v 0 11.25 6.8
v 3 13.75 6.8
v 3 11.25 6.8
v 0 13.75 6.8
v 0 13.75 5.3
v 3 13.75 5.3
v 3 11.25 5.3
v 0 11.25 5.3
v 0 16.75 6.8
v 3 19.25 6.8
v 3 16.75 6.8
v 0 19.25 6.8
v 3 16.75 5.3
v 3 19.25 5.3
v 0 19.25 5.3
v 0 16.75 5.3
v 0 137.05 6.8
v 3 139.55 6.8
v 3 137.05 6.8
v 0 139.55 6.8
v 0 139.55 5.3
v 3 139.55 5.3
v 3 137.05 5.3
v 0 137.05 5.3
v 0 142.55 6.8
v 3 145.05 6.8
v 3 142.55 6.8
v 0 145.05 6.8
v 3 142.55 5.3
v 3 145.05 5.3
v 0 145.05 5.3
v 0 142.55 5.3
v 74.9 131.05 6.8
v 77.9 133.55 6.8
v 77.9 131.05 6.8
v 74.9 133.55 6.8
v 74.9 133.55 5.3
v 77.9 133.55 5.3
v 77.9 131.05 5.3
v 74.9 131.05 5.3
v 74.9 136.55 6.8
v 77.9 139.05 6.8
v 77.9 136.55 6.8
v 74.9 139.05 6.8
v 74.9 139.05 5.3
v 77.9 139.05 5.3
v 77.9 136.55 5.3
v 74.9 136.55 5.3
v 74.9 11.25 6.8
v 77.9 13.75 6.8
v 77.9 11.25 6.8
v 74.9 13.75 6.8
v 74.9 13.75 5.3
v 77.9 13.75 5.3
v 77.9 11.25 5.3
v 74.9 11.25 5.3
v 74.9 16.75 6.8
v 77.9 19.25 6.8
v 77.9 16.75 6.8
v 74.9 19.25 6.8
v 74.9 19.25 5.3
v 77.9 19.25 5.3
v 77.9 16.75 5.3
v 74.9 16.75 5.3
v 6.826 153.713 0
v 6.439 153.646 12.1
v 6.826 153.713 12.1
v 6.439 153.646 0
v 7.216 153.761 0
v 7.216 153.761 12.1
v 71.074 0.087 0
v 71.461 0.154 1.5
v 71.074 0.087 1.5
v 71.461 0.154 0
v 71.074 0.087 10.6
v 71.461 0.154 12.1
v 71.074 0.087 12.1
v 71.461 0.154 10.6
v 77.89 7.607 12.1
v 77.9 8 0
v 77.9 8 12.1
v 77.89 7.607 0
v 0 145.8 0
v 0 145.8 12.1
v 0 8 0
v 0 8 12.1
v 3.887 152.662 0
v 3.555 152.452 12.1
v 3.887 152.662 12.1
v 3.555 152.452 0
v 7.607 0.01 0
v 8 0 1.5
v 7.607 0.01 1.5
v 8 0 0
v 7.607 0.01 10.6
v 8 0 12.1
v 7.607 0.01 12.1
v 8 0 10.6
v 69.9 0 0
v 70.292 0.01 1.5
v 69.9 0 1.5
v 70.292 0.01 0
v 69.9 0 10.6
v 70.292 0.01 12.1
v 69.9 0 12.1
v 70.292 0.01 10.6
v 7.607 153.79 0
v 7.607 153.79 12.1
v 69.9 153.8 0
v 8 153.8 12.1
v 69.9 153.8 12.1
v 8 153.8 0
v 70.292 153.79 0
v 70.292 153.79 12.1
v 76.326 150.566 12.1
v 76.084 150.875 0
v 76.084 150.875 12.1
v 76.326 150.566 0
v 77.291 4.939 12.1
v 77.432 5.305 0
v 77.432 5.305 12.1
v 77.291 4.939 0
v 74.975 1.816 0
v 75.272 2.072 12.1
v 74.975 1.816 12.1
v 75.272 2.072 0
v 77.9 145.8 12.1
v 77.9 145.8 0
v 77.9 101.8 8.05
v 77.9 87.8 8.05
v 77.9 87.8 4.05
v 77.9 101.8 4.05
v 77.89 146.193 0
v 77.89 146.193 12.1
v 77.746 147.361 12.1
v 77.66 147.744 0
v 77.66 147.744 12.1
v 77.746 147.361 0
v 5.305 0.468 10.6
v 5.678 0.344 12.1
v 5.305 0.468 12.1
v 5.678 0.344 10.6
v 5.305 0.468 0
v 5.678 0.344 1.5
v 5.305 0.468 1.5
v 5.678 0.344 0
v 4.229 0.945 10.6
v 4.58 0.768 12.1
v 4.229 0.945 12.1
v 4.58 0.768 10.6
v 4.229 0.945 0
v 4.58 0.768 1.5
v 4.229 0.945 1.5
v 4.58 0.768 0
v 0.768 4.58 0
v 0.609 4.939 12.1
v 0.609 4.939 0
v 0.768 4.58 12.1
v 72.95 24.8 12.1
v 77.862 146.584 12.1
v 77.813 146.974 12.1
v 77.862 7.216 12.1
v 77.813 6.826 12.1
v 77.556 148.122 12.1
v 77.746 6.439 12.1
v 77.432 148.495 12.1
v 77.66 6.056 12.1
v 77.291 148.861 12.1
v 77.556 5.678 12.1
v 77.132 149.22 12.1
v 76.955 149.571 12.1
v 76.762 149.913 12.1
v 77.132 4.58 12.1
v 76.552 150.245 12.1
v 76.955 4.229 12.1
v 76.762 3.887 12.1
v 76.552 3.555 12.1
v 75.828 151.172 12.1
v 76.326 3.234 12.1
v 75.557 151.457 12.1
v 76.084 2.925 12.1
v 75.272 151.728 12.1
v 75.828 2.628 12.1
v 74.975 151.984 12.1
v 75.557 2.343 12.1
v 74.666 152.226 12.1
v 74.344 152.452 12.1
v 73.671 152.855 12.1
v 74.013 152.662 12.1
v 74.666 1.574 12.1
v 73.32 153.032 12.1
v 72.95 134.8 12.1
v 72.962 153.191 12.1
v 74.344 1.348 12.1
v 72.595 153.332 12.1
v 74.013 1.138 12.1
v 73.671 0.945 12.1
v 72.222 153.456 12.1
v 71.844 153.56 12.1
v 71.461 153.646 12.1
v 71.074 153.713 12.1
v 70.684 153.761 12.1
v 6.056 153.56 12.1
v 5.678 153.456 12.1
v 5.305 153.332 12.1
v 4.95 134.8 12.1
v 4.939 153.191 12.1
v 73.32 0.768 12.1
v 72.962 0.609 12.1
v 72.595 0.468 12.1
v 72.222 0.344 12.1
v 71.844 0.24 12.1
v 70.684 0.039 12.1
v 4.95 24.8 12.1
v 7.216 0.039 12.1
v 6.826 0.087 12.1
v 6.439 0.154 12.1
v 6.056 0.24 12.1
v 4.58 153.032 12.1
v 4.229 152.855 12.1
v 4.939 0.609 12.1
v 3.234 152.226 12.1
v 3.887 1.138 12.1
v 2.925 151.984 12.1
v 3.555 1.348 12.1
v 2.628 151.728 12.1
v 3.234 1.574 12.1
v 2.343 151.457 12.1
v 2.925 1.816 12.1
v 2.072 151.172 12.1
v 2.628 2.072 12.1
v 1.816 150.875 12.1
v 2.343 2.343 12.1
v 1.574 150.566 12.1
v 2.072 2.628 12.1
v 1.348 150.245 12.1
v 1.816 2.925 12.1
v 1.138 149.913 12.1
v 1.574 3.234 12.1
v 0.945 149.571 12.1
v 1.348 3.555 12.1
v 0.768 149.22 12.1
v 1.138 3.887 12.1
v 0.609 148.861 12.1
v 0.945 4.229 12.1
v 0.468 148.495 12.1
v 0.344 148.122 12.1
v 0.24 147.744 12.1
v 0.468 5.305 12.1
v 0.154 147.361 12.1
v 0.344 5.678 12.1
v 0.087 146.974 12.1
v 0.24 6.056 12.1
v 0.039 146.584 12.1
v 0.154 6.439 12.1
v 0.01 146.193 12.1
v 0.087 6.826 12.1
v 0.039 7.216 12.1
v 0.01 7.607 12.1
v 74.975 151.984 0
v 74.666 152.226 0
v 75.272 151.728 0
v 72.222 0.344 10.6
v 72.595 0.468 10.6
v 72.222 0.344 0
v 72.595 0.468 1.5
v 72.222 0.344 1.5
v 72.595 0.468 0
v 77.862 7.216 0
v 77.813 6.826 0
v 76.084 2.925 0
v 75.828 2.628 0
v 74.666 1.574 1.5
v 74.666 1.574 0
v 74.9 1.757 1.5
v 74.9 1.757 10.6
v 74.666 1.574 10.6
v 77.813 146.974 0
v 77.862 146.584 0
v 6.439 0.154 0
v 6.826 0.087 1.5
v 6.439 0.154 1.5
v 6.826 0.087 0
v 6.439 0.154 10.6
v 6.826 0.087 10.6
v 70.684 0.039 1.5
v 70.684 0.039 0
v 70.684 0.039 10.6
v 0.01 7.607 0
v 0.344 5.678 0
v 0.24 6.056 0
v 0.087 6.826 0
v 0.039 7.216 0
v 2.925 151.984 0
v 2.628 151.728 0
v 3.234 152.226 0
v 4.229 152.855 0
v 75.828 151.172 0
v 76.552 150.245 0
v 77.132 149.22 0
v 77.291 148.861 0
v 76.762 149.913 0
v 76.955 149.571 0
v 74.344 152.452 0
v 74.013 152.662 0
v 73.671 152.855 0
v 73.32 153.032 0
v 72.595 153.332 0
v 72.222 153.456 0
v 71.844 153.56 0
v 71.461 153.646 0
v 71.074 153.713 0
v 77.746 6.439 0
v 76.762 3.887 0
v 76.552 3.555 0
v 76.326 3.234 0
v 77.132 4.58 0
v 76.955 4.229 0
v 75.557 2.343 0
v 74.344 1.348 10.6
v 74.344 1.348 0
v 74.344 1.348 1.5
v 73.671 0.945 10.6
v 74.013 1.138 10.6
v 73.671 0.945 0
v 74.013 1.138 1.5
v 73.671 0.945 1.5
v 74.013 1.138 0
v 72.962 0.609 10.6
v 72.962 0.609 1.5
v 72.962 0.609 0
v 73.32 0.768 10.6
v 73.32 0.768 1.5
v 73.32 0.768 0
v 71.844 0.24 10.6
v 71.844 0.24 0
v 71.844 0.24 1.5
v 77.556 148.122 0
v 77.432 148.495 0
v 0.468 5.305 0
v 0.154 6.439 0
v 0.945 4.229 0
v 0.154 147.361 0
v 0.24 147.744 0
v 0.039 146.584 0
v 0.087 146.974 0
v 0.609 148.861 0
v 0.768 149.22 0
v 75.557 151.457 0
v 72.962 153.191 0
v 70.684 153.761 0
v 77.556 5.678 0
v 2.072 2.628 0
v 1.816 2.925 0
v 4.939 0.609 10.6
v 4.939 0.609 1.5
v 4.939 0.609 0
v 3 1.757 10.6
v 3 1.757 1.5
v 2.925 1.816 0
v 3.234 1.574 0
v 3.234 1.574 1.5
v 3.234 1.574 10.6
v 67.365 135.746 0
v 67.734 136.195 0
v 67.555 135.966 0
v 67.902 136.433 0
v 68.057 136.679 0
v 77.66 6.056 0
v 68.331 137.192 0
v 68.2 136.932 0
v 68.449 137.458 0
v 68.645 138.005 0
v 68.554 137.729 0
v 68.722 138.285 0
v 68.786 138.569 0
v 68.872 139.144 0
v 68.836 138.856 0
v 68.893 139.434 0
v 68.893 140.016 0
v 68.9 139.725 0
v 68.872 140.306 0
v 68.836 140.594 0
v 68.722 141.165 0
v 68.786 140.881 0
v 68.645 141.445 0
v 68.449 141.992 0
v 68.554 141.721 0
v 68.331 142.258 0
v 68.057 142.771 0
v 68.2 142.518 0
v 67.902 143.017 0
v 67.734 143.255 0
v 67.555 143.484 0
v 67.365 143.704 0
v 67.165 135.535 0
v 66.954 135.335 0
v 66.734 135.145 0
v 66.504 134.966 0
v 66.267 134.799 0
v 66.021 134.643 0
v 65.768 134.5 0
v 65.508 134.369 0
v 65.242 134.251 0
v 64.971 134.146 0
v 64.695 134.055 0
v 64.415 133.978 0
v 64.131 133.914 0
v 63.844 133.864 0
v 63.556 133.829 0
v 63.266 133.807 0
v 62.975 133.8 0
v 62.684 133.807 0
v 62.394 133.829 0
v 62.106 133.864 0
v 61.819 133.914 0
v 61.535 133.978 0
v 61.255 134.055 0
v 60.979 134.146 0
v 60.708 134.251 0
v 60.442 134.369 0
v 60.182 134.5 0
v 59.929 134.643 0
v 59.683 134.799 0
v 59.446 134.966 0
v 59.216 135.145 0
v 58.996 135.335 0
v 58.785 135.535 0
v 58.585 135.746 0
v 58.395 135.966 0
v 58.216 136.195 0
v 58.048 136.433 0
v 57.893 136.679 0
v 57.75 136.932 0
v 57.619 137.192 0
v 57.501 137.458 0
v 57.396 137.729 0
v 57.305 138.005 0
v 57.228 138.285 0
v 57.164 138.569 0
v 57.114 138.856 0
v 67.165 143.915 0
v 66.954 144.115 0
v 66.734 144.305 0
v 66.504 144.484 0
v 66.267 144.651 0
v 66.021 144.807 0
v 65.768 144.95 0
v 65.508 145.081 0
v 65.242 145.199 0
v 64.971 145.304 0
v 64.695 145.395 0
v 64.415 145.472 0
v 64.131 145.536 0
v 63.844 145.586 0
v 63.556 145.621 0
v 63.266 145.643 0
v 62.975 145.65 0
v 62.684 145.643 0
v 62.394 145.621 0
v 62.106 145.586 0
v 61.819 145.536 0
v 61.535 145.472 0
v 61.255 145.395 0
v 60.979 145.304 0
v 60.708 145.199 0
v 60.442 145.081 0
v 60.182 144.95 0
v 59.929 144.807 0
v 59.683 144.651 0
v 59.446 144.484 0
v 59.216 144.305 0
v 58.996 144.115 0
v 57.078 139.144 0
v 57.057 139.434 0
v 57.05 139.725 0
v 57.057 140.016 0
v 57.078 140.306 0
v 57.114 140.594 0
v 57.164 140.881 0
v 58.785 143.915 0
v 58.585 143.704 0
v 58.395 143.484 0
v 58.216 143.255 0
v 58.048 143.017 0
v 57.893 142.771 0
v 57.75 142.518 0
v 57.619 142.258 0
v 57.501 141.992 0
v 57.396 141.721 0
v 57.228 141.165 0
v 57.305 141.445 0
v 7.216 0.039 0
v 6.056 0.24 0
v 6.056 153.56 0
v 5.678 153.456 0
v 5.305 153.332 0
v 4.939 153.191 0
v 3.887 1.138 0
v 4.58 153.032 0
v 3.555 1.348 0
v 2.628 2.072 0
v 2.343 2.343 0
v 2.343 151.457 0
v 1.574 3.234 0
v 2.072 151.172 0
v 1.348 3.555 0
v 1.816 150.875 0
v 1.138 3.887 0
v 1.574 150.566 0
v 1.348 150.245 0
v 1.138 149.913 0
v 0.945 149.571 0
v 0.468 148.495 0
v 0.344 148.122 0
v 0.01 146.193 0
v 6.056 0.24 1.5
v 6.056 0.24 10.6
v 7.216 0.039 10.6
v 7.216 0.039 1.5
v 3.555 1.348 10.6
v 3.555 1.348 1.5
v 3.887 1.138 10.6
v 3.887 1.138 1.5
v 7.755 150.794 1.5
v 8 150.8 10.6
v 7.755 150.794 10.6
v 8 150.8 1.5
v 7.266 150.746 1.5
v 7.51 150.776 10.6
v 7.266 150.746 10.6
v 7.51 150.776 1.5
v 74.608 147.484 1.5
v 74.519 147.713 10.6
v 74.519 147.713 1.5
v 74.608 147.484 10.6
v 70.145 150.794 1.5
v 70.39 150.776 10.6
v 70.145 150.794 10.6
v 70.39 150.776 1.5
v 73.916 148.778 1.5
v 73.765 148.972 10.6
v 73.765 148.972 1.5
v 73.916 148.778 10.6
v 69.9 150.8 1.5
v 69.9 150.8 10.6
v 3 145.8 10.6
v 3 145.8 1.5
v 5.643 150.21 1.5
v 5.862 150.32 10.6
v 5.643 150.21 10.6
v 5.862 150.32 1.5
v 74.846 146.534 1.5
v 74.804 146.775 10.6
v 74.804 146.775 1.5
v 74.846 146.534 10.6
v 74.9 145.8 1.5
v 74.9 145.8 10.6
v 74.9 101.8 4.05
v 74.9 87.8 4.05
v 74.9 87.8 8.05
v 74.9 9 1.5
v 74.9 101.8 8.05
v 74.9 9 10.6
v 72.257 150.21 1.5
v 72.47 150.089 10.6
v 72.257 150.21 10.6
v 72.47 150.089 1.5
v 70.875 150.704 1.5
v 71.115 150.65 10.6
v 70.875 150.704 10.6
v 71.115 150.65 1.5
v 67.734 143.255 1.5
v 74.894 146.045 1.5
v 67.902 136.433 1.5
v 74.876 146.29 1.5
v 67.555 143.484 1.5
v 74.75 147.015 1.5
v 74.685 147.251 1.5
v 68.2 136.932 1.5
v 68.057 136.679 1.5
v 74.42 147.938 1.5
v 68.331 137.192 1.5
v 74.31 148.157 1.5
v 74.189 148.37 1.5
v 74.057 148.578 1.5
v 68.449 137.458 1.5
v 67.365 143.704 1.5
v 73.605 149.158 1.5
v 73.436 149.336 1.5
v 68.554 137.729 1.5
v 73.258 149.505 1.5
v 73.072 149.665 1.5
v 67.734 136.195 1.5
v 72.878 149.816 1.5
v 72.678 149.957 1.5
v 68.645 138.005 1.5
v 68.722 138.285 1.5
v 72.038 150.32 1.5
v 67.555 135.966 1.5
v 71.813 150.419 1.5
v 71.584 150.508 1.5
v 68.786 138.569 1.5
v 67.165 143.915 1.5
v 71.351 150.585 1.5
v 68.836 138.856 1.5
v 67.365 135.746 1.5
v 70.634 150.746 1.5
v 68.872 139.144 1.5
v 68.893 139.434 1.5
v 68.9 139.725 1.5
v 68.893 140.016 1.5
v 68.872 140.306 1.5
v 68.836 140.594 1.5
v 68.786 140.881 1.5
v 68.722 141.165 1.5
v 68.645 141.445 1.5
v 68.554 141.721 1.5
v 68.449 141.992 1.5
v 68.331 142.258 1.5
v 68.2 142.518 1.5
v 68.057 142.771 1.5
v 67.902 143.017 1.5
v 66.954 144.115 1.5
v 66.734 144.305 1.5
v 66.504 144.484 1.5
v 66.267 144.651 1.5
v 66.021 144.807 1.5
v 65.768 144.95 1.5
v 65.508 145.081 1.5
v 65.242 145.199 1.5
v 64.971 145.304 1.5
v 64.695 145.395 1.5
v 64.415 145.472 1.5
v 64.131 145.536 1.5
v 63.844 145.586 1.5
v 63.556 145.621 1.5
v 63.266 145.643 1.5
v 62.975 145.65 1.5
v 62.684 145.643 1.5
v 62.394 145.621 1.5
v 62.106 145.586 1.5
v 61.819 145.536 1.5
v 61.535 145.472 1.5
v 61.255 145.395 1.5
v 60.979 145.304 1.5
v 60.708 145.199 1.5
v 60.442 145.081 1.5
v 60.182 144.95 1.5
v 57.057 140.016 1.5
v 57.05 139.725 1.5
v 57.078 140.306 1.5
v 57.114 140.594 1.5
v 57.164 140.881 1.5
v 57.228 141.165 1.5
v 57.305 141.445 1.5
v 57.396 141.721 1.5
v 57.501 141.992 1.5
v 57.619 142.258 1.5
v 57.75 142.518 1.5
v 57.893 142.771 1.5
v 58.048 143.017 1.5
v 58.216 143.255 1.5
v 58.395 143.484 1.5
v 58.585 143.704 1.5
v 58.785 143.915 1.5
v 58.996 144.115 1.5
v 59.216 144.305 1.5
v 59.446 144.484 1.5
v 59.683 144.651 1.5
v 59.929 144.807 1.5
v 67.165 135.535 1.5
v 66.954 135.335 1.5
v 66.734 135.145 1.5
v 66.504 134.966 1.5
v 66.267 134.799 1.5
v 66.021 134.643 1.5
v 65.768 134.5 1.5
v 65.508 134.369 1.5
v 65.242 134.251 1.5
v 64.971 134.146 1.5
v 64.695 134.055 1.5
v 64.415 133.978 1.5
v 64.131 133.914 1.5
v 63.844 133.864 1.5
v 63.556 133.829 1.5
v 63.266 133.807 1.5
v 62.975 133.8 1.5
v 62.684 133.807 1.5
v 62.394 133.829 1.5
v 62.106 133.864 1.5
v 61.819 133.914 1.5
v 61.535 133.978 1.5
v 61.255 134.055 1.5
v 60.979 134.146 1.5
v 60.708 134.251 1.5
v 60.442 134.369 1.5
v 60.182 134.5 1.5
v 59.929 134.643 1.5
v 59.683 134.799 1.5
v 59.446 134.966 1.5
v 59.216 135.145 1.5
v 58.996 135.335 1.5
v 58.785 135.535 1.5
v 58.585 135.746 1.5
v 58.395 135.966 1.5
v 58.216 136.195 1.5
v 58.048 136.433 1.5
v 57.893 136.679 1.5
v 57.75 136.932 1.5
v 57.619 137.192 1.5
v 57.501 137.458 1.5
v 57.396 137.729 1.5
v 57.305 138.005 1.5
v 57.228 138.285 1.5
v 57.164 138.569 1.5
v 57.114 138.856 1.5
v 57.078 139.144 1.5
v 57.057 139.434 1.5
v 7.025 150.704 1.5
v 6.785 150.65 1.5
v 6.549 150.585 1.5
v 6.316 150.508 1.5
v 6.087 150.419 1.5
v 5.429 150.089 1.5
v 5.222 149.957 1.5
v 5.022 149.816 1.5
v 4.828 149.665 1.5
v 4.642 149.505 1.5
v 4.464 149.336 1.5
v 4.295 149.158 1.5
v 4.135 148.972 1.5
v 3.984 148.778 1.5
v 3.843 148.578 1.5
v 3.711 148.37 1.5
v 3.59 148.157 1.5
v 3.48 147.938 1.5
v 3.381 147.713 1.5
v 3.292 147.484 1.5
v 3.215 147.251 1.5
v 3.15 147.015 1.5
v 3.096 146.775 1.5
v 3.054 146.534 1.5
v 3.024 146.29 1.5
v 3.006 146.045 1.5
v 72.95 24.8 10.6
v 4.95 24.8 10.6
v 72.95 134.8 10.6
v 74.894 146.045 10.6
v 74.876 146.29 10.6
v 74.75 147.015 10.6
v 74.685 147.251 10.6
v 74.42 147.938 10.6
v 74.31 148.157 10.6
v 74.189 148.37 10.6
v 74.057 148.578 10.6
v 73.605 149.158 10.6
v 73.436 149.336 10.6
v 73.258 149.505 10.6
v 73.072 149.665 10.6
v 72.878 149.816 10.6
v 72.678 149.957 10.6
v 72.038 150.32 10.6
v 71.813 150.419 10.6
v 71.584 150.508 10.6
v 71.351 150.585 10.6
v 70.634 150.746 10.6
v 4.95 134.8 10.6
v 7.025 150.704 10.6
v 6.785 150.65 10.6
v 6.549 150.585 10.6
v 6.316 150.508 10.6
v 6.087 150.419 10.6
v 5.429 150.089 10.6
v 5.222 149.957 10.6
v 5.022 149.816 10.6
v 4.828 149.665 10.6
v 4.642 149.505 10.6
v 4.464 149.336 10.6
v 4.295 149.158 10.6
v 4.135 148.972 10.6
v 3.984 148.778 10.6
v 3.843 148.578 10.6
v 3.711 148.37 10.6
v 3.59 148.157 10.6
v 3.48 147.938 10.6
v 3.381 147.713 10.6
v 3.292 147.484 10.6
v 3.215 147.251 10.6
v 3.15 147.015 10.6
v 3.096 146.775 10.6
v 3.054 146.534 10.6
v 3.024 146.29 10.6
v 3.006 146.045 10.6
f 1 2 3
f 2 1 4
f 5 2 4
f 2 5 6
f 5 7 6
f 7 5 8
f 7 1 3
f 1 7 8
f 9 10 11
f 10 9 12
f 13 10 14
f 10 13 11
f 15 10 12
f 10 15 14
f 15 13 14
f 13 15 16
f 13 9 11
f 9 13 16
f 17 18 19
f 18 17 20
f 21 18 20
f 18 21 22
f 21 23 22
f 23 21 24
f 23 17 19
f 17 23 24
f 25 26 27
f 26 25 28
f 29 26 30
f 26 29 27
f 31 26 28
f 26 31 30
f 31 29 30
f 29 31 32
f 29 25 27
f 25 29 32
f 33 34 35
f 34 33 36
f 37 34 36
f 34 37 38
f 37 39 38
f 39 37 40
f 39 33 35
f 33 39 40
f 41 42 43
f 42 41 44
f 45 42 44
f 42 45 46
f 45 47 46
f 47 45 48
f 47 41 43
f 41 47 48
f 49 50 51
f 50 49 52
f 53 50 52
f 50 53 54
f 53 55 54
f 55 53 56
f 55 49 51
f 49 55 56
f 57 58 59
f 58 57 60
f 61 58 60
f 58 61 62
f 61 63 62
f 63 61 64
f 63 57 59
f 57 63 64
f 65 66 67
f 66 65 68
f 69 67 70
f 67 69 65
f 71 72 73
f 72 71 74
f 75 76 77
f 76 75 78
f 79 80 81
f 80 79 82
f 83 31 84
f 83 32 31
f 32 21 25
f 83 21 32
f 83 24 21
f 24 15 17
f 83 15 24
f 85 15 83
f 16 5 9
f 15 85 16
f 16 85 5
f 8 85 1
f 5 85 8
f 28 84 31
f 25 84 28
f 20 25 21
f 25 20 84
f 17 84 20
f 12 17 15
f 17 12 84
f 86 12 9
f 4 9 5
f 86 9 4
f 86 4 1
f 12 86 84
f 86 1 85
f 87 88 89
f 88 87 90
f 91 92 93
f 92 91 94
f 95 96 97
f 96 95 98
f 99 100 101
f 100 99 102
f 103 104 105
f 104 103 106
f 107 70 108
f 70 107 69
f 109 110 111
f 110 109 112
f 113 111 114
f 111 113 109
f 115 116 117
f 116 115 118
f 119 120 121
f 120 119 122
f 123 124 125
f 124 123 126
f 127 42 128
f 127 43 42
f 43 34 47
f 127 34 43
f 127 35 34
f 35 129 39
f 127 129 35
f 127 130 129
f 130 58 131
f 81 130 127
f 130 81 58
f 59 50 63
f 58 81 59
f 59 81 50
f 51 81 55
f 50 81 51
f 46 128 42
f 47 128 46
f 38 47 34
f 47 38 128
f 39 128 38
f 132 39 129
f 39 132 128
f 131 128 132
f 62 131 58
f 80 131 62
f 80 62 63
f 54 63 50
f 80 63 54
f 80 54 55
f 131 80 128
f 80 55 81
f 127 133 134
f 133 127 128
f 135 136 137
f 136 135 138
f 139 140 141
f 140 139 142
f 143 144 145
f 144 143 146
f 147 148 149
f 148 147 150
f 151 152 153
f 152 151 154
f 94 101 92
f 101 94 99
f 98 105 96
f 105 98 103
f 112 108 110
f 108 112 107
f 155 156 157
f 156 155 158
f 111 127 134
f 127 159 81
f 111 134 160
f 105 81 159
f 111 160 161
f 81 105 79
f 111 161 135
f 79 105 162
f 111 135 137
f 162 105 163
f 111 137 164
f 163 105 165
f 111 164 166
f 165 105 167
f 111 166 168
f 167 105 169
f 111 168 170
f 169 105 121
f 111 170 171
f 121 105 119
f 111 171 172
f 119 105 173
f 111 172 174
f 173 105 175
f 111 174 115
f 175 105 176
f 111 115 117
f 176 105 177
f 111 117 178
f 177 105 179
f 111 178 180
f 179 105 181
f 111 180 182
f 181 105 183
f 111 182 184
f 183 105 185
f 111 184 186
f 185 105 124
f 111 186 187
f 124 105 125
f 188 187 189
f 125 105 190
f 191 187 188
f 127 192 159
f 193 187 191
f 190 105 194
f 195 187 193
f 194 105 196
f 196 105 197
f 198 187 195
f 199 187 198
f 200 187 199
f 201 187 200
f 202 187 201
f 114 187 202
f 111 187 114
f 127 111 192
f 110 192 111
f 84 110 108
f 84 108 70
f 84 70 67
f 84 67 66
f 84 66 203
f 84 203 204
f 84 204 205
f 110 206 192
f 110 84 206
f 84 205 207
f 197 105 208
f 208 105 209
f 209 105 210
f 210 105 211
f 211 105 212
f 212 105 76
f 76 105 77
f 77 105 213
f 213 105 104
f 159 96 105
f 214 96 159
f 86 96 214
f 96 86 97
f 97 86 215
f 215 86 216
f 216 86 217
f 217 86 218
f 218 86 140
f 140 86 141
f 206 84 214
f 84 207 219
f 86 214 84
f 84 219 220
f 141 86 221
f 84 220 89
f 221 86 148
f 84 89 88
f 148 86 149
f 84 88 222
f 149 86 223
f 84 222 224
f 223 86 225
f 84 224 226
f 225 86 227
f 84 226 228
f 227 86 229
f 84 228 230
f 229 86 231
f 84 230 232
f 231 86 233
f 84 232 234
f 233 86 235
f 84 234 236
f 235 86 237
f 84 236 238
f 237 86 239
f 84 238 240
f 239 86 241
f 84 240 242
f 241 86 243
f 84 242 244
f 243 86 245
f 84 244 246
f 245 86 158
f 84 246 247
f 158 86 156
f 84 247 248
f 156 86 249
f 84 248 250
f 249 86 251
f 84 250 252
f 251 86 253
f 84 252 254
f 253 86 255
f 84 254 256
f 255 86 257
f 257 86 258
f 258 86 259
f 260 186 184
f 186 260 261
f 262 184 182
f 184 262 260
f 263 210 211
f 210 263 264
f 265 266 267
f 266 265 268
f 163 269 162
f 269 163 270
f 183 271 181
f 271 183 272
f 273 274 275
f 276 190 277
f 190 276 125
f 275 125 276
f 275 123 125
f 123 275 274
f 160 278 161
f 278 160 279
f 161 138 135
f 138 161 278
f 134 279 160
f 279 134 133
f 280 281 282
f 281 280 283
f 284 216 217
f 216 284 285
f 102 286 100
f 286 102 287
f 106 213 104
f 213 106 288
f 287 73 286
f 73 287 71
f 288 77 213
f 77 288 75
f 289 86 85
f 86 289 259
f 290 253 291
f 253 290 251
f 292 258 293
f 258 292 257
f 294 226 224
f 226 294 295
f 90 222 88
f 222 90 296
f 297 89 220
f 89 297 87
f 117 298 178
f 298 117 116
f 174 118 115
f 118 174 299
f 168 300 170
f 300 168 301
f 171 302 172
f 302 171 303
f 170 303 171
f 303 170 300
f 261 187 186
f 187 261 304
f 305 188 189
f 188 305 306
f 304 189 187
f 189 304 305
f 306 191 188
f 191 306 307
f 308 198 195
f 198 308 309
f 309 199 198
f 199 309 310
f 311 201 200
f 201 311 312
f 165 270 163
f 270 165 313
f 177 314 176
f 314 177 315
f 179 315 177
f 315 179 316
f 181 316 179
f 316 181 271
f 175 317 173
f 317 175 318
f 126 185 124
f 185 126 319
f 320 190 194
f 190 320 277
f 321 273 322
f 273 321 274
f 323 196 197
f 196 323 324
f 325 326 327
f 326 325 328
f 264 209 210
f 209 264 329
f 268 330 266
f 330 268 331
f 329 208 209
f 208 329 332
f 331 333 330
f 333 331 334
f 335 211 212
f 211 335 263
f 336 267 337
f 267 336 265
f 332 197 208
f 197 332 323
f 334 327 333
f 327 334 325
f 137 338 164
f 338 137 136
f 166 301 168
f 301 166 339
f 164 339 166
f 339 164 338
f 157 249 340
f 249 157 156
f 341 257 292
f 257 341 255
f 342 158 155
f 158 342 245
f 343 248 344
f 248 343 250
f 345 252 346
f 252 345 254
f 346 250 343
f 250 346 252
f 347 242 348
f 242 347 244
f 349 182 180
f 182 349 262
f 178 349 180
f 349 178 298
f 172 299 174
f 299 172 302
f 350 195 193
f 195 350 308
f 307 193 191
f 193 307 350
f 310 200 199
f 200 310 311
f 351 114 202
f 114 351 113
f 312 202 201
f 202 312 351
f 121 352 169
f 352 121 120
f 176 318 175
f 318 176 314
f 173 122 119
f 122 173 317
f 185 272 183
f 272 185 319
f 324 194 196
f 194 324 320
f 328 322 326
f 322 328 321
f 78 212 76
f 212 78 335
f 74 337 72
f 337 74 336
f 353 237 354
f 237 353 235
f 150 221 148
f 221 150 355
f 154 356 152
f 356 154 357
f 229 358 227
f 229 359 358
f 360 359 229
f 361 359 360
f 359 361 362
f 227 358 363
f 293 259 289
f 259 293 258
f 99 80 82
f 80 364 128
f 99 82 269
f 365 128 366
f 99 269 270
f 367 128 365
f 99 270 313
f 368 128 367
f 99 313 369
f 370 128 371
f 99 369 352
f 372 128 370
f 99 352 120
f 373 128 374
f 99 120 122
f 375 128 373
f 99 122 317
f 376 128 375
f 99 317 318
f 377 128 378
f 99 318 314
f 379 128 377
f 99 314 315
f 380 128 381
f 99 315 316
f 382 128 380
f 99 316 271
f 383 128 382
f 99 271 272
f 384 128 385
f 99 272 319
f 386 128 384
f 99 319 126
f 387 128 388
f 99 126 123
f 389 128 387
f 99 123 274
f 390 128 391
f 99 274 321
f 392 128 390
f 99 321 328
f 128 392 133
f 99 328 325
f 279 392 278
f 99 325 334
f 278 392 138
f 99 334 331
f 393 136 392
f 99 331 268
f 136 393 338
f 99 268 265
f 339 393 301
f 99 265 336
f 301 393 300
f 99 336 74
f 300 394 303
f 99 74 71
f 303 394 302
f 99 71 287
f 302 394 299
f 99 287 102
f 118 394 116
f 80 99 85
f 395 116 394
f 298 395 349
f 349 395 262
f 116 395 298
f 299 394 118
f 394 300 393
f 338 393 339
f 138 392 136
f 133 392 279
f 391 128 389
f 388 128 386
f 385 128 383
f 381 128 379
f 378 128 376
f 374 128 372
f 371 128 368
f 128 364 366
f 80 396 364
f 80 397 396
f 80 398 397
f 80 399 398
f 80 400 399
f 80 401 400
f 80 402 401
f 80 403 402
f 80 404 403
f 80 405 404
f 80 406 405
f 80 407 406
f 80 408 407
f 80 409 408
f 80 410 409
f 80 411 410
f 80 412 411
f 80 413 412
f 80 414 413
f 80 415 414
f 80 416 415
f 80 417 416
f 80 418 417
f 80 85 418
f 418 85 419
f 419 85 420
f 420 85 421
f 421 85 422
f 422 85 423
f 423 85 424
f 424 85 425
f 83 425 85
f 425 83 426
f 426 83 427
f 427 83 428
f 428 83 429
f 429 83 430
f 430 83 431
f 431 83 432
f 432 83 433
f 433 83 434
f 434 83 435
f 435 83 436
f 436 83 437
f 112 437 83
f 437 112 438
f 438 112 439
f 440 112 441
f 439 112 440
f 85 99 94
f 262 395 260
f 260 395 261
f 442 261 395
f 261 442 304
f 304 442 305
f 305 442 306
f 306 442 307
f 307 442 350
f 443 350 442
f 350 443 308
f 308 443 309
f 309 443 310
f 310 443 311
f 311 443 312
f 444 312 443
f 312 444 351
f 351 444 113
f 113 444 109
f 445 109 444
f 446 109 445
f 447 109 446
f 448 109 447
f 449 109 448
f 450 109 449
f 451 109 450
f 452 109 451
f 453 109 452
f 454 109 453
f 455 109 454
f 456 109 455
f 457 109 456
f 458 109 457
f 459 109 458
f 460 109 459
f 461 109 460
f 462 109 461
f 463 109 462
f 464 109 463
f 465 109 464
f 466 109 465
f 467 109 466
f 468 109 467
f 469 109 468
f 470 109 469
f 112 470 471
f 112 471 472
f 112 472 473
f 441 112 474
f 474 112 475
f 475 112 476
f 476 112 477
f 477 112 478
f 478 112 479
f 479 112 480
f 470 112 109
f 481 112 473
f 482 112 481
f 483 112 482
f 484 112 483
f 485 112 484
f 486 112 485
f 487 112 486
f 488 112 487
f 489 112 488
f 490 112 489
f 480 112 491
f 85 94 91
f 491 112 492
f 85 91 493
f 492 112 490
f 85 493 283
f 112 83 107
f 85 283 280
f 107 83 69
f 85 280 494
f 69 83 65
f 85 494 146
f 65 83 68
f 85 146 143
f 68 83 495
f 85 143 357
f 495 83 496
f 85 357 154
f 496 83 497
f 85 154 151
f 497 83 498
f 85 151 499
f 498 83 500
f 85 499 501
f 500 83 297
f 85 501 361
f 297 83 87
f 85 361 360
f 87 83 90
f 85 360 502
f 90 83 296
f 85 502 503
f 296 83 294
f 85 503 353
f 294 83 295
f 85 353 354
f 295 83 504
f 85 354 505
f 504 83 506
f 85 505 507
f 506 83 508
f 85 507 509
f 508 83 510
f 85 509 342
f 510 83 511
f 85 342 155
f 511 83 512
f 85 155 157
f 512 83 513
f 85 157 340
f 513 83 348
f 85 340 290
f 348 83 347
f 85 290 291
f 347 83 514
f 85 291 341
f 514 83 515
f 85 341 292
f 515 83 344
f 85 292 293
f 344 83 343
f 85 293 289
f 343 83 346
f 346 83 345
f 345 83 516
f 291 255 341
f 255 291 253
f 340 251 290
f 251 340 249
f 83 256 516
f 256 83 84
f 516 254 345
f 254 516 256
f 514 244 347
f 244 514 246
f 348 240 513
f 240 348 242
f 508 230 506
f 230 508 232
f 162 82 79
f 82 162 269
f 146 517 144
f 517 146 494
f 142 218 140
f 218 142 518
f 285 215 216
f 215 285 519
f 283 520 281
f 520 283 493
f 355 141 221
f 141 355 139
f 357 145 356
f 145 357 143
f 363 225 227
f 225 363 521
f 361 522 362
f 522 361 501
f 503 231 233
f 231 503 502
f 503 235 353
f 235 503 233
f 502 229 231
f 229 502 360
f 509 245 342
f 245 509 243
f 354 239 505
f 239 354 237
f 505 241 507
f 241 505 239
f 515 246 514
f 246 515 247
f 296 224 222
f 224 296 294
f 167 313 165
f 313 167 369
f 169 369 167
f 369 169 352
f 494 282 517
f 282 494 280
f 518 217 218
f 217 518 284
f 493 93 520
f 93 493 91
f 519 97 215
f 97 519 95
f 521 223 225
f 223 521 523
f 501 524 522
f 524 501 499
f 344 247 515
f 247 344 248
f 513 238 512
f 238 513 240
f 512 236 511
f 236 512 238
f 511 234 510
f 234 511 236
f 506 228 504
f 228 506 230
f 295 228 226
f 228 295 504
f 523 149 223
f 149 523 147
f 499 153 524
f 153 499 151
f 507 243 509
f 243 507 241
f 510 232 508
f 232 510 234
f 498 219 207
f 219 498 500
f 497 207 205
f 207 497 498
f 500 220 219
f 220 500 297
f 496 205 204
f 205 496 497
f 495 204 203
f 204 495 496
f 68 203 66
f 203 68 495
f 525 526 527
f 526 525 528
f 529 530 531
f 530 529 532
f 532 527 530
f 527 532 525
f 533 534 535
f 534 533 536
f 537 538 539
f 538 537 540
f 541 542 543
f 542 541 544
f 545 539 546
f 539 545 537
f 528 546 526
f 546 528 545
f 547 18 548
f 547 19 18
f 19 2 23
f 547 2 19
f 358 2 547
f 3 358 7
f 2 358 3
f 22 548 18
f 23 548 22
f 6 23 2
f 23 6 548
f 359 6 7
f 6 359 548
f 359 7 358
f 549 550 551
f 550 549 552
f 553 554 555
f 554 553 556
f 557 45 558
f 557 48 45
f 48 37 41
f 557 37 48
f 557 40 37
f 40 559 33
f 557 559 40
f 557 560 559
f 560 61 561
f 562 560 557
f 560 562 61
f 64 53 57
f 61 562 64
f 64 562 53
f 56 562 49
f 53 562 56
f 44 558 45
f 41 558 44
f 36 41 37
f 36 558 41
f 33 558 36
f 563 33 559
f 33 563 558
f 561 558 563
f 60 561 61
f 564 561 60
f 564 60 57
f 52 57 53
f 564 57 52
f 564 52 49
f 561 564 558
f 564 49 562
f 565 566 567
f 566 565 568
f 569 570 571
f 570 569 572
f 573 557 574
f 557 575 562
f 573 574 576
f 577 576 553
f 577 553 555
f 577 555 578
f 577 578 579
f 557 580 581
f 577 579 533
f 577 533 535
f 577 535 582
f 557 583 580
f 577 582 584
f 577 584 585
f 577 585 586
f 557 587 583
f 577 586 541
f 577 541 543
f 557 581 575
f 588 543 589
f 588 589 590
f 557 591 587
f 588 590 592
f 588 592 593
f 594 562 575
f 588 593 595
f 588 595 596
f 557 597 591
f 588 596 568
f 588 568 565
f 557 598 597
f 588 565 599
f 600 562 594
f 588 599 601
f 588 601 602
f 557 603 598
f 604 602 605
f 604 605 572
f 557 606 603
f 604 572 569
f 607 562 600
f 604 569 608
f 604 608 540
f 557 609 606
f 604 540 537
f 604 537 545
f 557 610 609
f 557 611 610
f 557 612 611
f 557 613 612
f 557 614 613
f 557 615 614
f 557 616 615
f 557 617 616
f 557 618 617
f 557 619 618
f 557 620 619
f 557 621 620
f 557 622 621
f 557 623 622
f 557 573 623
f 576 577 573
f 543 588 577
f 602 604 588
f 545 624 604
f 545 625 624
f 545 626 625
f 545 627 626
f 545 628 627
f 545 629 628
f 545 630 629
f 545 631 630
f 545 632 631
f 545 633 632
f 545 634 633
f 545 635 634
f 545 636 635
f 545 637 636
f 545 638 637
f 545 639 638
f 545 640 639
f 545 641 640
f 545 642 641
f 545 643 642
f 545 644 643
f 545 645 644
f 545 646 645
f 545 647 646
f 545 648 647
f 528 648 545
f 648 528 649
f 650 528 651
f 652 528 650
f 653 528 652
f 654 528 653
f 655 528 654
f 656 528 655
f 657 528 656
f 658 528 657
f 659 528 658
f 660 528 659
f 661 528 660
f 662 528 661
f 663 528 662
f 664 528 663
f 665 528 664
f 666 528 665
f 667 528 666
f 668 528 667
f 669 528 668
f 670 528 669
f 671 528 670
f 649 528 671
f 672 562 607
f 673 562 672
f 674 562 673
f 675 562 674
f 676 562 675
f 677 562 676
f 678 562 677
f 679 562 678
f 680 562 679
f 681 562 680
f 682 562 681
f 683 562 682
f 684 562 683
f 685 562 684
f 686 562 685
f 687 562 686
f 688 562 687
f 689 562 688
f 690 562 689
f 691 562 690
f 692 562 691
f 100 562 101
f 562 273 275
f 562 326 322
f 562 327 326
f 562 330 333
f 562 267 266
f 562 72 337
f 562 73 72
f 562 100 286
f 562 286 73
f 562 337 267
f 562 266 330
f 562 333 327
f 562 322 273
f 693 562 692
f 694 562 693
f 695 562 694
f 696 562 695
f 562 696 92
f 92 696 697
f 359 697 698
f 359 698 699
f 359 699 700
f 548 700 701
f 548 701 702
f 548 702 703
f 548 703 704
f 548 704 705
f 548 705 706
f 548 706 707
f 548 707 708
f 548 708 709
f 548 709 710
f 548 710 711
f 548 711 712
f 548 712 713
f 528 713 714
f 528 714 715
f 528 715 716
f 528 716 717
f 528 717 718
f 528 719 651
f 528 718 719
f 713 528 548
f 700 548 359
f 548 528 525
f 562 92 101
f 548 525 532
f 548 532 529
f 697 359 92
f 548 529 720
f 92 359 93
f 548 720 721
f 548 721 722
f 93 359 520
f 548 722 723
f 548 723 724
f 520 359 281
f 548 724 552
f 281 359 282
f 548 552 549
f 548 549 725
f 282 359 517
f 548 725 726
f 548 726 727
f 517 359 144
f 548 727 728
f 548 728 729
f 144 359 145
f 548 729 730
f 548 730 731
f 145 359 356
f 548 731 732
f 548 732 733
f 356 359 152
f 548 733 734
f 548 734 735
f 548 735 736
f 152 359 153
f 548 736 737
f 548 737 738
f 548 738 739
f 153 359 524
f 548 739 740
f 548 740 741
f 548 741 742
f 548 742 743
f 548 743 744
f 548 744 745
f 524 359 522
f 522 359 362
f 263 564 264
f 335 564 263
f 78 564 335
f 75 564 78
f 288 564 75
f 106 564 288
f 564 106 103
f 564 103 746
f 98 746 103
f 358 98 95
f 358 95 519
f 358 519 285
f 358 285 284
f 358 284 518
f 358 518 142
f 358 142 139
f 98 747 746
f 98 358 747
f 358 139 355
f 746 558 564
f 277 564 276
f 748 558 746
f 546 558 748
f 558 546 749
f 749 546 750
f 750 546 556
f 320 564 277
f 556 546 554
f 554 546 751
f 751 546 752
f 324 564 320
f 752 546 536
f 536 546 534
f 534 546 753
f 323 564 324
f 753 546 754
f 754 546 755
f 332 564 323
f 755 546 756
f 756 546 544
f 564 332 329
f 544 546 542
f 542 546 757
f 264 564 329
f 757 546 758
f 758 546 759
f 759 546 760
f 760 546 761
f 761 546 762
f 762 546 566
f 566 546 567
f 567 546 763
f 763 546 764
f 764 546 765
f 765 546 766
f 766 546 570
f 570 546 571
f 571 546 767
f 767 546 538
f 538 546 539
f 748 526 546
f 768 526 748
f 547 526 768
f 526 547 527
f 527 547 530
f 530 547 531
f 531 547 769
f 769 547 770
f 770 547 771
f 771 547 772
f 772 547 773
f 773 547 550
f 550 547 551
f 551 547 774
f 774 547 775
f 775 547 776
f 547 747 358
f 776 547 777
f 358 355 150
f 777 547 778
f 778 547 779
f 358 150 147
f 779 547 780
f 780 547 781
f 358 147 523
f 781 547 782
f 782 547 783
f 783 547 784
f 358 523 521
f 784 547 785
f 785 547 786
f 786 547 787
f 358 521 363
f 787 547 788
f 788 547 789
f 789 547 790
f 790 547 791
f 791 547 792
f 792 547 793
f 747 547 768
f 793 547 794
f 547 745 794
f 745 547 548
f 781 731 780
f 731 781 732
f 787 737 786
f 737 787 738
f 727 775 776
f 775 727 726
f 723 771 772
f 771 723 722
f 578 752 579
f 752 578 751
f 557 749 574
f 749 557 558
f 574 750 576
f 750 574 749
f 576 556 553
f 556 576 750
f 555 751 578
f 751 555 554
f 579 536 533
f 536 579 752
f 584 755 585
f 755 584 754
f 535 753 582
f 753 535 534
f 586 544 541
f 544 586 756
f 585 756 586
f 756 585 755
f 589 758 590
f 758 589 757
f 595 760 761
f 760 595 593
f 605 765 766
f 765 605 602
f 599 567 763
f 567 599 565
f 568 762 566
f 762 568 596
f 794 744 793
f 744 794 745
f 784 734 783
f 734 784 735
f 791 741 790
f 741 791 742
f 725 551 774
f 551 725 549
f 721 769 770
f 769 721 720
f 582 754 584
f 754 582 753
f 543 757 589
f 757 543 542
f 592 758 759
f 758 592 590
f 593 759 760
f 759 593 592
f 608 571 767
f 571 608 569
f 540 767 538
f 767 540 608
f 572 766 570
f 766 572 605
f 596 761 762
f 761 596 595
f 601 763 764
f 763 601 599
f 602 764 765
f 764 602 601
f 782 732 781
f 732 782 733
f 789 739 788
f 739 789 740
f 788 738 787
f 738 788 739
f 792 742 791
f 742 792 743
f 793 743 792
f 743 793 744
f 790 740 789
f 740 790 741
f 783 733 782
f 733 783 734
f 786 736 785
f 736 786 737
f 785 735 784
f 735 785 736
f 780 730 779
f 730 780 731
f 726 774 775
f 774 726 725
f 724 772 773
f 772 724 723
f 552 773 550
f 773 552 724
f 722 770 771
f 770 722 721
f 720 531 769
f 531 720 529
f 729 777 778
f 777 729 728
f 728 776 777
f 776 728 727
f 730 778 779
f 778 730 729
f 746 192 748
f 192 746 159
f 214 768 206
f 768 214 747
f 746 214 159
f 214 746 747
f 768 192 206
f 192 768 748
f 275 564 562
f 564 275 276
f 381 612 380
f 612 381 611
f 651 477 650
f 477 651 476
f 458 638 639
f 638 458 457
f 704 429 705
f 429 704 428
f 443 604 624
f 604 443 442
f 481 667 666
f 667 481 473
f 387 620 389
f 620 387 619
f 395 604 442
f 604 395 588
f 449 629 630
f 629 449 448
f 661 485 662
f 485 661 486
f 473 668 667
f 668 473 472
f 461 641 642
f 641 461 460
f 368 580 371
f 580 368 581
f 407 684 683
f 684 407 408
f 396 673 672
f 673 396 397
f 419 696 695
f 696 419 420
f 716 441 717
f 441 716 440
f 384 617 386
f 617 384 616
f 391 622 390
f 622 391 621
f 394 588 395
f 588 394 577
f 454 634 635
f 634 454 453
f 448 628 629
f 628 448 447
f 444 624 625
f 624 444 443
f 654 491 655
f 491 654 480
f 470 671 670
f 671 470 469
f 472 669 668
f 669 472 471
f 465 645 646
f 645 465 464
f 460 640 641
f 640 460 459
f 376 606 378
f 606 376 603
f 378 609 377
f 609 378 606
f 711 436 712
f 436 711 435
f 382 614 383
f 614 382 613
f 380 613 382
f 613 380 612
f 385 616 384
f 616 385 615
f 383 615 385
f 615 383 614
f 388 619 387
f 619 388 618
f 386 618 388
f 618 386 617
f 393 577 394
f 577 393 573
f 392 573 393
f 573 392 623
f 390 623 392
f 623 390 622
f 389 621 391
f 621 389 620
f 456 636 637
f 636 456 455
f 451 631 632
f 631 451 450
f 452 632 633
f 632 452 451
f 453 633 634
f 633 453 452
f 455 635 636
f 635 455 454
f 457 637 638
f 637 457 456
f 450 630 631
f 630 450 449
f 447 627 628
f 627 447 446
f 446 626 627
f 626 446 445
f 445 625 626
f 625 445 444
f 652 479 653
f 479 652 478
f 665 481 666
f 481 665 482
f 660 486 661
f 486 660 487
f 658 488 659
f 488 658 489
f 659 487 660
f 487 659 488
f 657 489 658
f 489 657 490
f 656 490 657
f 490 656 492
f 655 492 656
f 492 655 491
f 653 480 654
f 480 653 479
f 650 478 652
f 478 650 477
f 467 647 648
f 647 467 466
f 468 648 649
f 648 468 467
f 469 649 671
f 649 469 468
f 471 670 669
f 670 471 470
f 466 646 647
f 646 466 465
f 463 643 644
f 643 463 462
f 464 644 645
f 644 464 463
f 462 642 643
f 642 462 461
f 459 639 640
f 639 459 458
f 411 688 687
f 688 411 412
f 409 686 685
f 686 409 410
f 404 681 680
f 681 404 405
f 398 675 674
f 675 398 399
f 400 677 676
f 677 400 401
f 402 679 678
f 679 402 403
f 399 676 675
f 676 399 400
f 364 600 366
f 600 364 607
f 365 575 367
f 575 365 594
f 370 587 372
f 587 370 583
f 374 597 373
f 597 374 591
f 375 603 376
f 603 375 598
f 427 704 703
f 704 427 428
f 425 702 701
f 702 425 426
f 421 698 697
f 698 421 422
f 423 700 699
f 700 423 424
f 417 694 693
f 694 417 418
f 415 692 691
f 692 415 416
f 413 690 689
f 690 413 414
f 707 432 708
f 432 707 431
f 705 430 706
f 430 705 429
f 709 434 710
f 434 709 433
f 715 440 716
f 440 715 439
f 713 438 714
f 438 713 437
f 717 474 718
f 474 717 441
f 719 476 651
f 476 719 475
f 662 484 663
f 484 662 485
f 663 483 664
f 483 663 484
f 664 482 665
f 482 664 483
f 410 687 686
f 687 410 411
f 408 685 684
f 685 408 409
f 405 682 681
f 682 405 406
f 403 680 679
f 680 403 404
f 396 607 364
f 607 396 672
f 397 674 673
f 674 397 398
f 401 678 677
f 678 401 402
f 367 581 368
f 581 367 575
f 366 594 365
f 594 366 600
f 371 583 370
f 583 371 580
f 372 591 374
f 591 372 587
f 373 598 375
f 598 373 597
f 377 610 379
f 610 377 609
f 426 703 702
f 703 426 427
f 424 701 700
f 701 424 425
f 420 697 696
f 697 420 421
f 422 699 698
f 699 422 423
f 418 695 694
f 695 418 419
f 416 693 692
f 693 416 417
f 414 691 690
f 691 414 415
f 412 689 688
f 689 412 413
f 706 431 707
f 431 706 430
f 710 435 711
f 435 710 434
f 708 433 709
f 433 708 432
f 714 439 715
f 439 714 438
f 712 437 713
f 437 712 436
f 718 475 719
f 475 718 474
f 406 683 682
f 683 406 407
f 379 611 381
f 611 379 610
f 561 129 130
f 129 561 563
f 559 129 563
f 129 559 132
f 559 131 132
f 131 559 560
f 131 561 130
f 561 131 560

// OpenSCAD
// file: scad-utils/mirror.scad
// Copyright (c) 2013 Oskar Linde. All rights reserved.
// License: BSD
//
// This library contains simple mirroring functions
//
// mirror_x()
// mirror_y()
// mirror_z()


module mirror_x() {
  union() {
    child();
    scale([-1,1,1]) child();
  }
}

module mirror_y() {
  union() {
    child();
    scale([1,-1,1]) child();
  }
}

module mirror_z() {
  union() {
    child();
    scale([1,1,-1]) child();
  }
}
// file: helpers.scad
include <constants.scad>

function get_rotation_matricies(theta) = [
  [[1, 0, 0], [0, cos(theta), -sin(theta)], [0, sin(theta), cos(theta)]],
  [[cos(theta), 0, sin(theta)], [0, 1, 0], [-sin(theta), 0, cos(theta)]],
  [[cos(theta), -sin(theta), 0], [sin(theta), cos(theta), 0], [0, 0, 1]]
];

function get_rotation_matrix(axis, theta) = get_rotation_matricies(theta)[axis];

function rotate_point(rotation, point) =
  get_rotation_matrix(2, rotation[2]) *
  get_rotation_matrix(1, rotation[1]) *
  get_rotation_matrix(0, rotation[0]) *
  point;

function clamp_safe(point, translation) =
  let(pt = [for(i=[0, 2]) point[i] + translation[i]])
  [for(i=[0, 2])
    (pt[i] > CUBE_SIZE) ? point[i] - (pt[i] - CUBE_SIZE) :
    (pt[i] < 0) ? point[i] - pt[i] :
    point[i]
  ];

function is_safe_point(point, translation) =
  let(pt = [point[0] + translation[0], point[1] + translation[1], point[2] + translation[2]])
  pt[0] > 0 && pt[0] < CUBE_SIZE &&
  pt[1] > 0 && pt[1] < CUBE_SIZE &&
  pt[2] > 0 && pt[2] < CUBE_SIZE;

function is_safe(rotation, translation) =
  min([for(point = CASE_ANCHOR_POINTS) is_safe_point(rotate_point(rotation, point), translation) ? 1 : 0]) == 1;

module scale_for_svg() {
  MM_PER_IN = 25.4;
  DPI = 96;
  scale(DPI / MM_PER_IN) {
    children();
  }
}
// file: constants.scad
CUBE_SIZE = 300;
CEIL_CLEARANCE = 100;
NUM_PHONES = 6;

PHONE_HEIGHT = 147.8;
PHONE_WIDTH = 71.9;
PHONE_DEPTH = 9.1;
PHONE_SCREEN_TOP = 19; //wrt case top
PHONE_SCREEN_HEIGHT = 110;
PHONE_SCREEN_WIDTH = 68;
PHONE_LENS_DIA = 11.85;
PHONE_LENS_OFFSET_LEFT = 3;
PHONE_LENS_OFFSET_TOP = 3.65;
PHONE_POWER_BUTTON_TOP = 52;

CASE_THICKNESS = 1.5;
WALL_THICKNESS = 3;
CASE_HEIGHT = PHONE_HEIGHT + 2 * WALL_THICKNESS;
CASE_WIDTH = PHONE_WIDTH + 2 * WALL_THICKNESS;
CASE_DEPTH = PHONE_DEPTH + 2 * CASE_THICKNESS;

CASE_ANCHOR_OFFSET = 14;
CASE_ANCHOR_POINTS = [
  [0, CASE_ANCHOR_OFFSET, 0],
  [0, CASE_HEIGHT - CASE_ANCHOR_OFFSET, 0],
  [CASE_WIDTH - WALL_THICKNESS, PHONE_HEIGHT - CASE_ANCHOR_OFFSET, 0],
  [CASE_WIDTH - WALL_THICKNESS, CASE_ANCHOR_OFFSET, 0]
];


d = 0.01;
d2 = 2 * d;
wiggle = 1;
// file: scad-utils/morphology.scad
// Copyright (c) 2013 Oskar Linde. All rights reserved.
// License: BSD
//
// This library contains basic 2D morphology operations
//
// outset(d=1)            - creates a polygon at an offset d outside a 2D shape
// inset(d=1)             - creates a polygon at an offset d inside a 2D shape
// fillet(r=1)            - adds fillets of radius r to all concave corners of a 2D shape
// rounding(r=1)          - adds rounding to all convex corners of a 2D shape
// shell(d,center=false)  - makes a shell of width d along the edge of a 2D shape
//                        - positive values of d places the shell on the outside
//                        - negative values of d places the shell on the inside
//                        - center=true and positive d places the shell centered on the edge

module outset(d=1) {
	// Bug workaround for older OpenSCAD versions
	if (version_num() < 20130424) render() outset_extruded(d) child();
	else minkowski() {
		circle(r=d);
		child();
	}
}

module outset_extruded(d=1) {
   projection(cut=true) minkowski() {
        cylinder(r=d);
        linear_extrude(center=true) child();
   }
}

module inset(d=1) {
	 render() inverse() outset(d=d) inverse() child();
}

module fillet(r=1) {
	inset(d=r) render() outset(d=r) child();
}

module rounding(r=1) {
	outset(d=r) inset(d=r) child();
}

module shell(d,center=false) {
	if (center && d > 0) {
		difference() {
			outset(d=d/2) child();
			inset(d=d/2) child();
		}
	}
	if (!center && d > 0) {
		difference() {
			outset(d=d) child();
			child();
		}
	}
	if (!center && d < 0) {
		difference() {
			child();
			inset(d=-d) child();
		}
	}
	if (d == 0) child();
}


// Below are for internal use only

module inverse() {
	difference() {
		square(1e5,center=true);
		child();
	}
}


// TEST CODE

use <mirror.scad>

module arrow(l=1,w=.6,t=0.15) {
	mirror_y() polygon([[0,0],[l,0],[l-w/2,w/2],[l-w/2-sqrt(2)*t,w/2],[l-t/2-sqrt(2)*t,t/2],[0,t/2]]);
}

module shape() {
	polygon([[0,0],[1,0],[1.5,1],[2.5,1],[2,-1],[0,-1]]);
}

if(0) assign($fn=32) {

	for (p = [0:10*3-1]) assign(o=floor(p/3)) {
		translate([(p%3)*2.5,-o*3]) {
			//%if (p % 3 == 1) translate([0,0,1]) shape();
			if (p % 3 == 0) shape();
			if (p % 3 == 1) translate([0.6,0]) arrow();
			if (p % 3 == 2) {
				if (o == 0) inset(d=0.3) shape();
				if (o == 1) outset(d=0.3) shape();
				if (o == 2) rounding(r=0.3) shape();
				if (o == 3) fillet(r=0.3) shape();
				if (o == 4) shell(d=0.3) shape();
				if (o == 5) shell(d=-0.3) shape();
				if (o == 6) shell(d=0.3,center=true) shape();
				if (o == 7) rounding(r=0.3) fillet(r=0.3) shape();
				if (o == 8) shell(d=0.3,center=true) fillet(r=0.3) rounding(r=0.3) shape();
				if (o == 9) shell(d=-0.3) fillet(r=0.3) rounding(r=0.3) shape();
			}
		}
	}
}
// main file
use <scad-utils/morphology.scad>
include <constants.scad>
include <helpers.scad>

EXIT_LENGTH = 10;
CLEAT_WIDTH = 2.5;
CLEAT_HEIGHT = 1.5;
CLEAT_DIST = 3;

$fn = 128;

module phone() {
  //color("black")
  linear_extrude(PHONE_DEPTH)
  rounding(5)
    square([PHONE_WIDTH, PHONE_HEIGHT]);
}

module phone_camera() {
  translate([
    PHONE_WIDTH - PHONE_LENS_OFFSET_LEFT - PHONE_LENS_DIA/2,
    PHONE_HEIGHT + CASE_THICKNESS - PHONE_LENS_OFFSET_TOP - PHONE_LENS_DIA / 2,
    -d
    ])
    cylinder(d=PHONE_LENS_DIA, h=CASE_THICKNESS + d2);
}


module phone_exit() {
  translate([(CASE_WIDTH - PHONE_WIDTH) / 2, -1, (CASE_DEPTH - PHONE_DEPTH) / 2])
  cube([PHONE_WIDTH, EXIT_LENGTH, PHONE_DEPTH]);
}

module phone_screen() {
  translate([(CASE_WIDTH - PHONE_SCREEN_WIDTH) / 2,  CASE_HEIGHT - PHONE_SCREEN_TOP - PHONE_SCREEN_HEIGHT , PHONE_DEPTH])
  linear_extrude(PHONE_DEPTH)
    square([PHONE_SCREEN_WIDTH, PHONE_SCREEN_HEIGHT]);
}

module case_outer() {
  color("blue")
  linear_extrude(CASE_DEPTH)
  rounding(8)
    square([CASE_WIDTH, CASE_HEIGHT]);
}

module power_button_access() {
  v = [WALL_THICKNESS + d2, 14, 4];
  translate([CASE_WIDTH - WALL_THICKNESS - d, CASE_HEIGHT - PHONE_POWER_BUTTON_TOP - v[1], CASE_DEPTH / 2])
    translate([0, 0, -2])
    cube(v);
}

module cleat() {
  translate([-d, -CLEAT_DIST/2 - CLEAT_WIDTH/2, -CLEAT_HEIGHT / 2])
    union() {
      cube([WALL_THICKNESS + d2, CLEAT_WIDTH, CLEAT_HEIGHT]);
      translate([0, CLEAT_WIDTH + CLEAT_DIST, 0])
        cube([WALL_THICKNESS + d, CLEAT_WIDTH, CLEAT_HEIGHT]);
    }
}

module position_cleats() {
  for (position = CASE_ANCHOR_POINTS) {
    translate([0, 0, CASE_DEPTH/2])
    translate(position)
      cleat();
  }
}

module position_phone_in_case() {
  translate([WALL_THICKNESS, WALL_THICKNESS, CASE_THICKNESS])
    phone();
}

module case_bool() {
  difference() {
    case_outer();
    position_phone_in_case();
    phone_screen();
    phone_exit();
    phone_camera();
    position_cleats();
    power_button_access();
  }
}

case_bool();
